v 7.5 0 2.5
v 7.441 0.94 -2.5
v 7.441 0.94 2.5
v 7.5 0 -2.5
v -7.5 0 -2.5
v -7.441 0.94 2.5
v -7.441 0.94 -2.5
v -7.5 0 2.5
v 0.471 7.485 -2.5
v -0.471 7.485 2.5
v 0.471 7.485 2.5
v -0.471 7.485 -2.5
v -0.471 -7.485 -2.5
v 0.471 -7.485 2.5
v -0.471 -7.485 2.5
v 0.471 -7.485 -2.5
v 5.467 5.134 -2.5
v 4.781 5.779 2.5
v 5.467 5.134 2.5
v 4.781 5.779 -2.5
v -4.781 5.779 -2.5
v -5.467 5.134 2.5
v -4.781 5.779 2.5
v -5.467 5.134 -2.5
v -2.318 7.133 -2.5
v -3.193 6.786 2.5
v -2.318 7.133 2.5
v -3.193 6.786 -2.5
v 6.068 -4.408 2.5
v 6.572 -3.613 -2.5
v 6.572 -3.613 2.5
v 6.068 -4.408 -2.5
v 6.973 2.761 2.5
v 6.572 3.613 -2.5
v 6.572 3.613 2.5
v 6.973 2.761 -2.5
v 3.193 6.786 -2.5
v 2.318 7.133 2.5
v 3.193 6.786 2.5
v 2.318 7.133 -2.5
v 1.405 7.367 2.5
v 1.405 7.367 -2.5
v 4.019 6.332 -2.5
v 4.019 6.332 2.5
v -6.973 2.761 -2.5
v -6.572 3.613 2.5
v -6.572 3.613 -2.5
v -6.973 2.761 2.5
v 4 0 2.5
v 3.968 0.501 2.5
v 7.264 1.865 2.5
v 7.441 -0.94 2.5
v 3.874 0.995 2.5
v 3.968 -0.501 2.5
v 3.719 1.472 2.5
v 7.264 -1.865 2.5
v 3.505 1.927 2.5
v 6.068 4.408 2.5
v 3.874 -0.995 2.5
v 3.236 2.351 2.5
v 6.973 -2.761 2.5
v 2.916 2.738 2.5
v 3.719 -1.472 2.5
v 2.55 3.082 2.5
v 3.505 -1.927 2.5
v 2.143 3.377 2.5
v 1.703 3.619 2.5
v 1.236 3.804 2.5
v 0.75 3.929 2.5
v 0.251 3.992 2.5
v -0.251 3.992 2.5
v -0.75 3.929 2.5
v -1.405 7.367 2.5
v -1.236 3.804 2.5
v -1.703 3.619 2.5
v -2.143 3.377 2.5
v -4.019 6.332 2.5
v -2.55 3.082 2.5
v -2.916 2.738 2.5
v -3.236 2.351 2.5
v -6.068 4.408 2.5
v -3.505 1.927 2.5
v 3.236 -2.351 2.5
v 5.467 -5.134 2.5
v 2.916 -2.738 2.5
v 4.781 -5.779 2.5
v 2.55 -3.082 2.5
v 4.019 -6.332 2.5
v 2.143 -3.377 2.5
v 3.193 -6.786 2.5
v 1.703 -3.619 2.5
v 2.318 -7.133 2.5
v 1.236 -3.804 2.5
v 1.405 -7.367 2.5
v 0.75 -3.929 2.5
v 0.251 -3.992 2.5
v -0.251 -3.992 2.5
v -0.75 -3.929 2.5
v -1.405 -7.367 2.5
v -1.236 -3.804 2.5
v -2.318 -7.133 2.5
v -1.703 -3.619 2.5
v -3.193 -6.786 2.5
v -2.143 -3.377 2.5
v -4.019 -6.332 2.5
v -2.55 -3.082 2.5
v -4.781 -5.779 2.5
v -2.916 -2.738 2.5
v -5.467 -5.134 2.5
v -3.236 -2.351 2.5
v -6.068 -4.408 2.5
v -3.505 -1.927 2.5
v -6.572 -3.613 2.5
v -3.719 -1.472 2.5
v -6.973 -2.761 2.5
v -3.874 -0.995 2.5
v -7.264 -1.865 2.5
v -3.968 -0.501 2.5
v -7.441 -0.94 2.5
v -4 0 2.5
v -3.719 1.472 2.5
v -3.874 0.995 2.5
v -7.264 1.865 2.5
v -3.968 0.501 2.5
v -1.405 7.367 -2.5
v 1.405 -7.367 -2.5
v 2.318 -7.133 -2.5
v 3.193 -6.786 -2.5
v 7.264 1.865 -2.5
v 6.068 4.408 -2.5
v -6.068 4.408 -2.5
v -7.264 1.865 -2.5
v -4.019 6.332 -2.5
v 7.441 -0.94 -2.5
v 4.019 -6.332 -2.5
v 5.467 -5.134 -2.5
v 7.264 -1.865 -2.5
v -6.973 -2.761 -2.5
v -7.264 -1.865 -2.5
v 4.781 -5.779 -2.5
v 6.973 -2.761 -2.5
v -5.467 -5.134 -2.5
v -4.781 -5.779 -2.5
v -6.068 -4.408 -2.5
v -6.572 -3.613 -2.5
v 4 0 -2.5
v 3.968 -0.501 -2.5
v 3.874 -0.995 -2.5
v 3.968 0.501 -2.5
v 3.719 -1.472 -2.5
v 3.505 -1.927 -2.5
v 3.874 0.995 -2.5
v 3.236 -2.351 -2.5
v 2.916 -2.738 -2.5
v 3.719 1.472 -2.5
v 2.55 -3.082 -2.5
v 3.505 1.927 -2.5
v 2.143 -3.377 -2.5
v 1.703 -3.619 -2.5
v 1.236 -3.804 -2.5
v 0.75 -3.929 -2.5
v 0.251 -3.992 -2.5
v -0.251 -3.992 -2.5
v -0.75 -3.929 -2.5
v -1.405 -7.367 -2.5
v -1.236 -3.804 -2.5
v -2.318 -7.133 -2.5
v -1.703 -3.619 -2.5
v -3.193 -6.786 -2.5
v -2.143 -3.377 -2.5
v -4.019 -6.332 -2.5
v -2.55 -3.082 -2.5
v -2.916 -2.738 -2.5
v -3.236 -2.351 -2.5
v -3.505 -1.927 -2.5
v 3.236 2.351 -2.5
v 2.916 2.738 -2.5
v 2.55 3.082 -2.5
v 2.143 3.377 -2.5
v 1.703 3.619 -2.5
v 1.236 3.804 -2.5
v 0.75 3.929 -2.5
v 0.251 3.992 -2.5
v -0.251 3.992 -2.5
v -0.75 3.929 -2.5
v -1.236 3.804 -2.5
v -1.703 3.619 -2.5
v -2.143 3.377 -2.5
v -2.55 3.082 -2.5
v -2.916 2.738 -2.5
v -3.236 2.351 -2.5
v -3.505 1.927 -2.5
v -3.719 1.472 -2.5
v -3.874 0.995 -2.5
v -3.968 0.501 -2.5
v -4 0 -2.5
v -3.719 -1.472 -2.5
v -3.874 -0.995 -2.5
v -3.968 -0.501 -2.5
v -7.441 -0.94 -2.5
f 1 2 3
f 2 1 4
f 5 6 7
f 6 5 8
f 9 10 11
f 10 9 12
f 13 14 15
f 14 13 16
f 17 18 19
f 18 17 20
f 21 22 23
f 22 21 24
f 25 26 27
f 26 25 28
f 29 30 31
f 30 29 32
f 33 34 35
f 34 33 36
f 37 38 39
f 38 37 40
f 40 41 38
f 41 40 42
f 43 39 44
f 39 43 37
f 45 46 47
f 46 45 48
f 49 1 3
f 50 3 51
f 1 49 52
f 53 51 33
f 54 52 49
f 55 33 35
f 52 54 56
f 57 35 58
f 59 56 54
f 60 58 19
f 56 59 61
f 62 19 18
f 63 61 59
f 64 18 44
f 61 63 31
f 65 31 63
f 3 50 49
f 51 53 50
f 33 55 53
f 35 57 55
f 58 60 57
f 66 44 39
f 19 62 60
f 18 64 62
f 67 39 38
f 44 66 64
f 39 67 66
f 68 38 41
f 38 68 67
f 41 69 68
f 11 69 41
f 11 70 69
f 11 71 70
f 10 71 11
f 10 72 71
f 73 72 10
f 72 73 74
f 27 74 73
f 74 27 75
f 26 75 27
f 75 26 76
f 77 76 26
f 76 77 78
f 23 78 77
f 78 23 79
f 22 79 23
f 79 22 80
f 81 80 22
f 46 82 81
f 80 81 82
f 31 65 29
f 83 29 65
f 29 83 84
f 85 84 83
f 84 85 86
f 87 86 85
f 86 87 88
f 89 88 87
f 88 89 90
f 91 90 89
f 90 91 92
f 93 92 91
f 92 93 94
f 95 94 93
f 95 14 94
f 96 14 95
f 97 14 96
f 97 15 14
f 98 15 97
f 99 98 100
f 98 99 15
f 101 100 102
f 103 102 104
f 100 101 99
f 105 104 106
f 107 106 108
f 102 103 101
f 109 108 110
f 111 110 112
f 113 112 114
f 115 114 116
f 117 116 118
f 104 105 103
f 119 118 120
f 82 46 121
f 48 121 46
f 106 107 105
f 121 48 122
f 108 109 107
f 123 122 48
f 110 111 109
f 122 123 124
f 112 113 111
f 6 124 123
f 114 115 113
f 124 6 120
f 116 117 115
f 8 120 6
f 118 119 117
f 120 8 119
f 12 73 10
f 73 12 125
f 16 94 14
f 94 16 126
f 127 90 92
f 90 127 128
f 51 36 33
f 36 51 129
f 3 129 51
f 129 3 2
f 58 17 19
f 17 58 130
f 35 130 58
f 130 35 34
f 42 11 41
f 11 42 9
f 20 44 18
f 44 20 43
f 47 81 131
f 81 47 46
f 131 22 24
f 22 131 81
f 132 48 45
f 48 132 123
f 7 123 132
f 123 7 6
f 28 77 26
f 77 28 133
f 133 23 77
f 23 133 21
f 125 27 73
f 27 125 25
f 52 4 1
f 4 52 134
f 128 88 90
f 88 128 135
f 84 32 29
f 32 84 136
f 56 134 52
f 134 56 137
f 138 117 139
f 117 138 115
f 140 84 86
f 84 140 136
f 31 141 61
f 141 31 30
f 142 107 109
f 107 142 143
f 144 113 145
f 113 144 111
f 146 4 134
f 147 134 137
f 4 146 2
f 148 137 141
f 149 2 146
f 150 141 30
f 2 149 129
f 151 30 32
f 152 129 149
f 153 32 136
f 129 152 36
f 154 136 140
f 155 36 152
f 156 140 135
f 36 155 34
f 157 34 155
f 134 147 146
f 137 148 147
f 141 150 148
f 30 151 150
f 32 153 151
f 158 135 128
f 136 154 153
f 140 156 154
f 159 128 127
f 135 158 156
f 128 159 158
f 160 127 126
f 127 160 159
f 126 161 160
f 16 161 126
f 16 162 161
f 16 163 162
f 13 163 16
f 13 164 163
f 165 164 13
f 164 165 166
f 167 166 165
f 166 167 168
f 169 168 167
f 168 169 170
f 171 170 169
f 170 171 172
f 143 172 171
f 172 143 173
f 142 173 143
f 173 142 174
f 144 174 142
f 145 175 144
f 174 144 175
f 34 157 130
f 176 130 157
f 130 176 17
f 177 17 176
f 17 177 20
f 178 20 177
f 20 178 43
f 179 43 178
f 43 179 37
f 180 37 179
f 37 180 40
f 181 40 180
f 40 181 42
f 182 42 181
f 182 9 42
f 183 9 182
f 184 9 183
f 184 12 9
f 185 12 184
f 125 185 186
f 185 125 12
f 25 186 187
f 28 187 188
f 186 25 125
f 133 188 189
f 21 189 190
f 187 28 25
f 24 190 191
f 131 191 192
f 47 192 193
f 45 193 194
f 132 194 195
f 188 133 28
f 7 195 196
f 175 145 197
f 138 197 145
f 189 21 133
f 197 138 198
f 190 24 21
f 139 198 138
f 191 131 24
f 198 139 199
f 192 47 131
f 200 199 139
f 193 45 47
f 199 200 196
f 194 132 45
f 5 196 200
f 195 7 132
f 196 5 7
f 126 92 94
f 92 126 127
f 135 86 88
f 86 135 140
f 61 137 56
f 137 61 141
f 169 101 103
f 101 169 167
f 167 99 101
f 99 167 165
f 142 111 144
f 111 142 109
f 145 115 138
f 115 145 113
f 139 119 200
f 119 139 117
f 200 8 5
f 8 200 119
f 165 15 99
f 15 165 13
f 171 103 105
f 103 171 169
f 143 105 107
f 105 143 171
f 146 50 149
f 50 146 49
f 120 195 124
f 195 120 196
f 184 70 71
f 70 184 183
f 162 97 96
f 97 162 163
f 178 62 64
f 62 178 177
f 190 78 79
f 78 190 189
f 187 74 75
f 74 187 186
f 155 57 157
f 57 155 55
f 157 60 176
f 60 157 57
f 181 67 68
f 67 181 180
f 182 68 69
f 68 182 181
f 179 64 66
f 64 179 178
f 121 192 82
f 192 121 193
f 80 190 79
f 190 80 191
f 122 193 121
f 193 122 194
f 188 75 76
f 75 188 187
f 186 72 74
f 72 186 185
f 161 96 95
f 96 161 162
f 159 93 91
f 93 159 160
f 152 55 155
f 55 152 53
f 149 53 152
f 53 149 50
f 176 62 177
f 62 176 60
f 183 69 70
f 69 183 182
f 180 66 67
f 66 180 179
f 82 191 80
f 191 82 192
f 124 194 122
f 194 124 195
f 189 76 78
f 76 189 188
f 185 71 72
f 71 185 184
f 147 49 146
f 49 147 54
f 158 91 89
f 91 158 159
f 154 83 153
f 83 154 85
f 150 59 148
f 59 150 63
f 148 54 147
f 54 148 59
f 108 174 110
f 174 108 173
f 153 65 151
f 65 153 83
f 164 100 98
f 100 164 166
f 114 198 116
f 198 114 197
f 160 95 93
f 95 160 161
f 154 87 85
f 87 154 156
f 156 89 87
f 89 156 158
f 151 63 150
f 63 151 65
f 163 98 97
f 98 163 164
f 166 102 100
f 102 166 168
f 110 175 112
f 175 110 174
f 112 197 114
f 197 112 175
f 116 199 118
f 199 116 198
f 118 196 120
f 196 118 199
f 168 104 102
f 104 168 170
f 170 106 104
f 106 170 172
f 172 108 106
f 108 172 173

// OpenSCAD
$fn = 50;


difference() {
	union() {
		translate(v = [0, 0, -2.5000000000]) {
			cylinder(h = 5, r = 7.5000000000);
		}
	}
	union() {
		translate(v = [0, 0, -100.0000000000]) {
			cylinder(h = 200, r = 4.0000000000);
		}
	}
}
